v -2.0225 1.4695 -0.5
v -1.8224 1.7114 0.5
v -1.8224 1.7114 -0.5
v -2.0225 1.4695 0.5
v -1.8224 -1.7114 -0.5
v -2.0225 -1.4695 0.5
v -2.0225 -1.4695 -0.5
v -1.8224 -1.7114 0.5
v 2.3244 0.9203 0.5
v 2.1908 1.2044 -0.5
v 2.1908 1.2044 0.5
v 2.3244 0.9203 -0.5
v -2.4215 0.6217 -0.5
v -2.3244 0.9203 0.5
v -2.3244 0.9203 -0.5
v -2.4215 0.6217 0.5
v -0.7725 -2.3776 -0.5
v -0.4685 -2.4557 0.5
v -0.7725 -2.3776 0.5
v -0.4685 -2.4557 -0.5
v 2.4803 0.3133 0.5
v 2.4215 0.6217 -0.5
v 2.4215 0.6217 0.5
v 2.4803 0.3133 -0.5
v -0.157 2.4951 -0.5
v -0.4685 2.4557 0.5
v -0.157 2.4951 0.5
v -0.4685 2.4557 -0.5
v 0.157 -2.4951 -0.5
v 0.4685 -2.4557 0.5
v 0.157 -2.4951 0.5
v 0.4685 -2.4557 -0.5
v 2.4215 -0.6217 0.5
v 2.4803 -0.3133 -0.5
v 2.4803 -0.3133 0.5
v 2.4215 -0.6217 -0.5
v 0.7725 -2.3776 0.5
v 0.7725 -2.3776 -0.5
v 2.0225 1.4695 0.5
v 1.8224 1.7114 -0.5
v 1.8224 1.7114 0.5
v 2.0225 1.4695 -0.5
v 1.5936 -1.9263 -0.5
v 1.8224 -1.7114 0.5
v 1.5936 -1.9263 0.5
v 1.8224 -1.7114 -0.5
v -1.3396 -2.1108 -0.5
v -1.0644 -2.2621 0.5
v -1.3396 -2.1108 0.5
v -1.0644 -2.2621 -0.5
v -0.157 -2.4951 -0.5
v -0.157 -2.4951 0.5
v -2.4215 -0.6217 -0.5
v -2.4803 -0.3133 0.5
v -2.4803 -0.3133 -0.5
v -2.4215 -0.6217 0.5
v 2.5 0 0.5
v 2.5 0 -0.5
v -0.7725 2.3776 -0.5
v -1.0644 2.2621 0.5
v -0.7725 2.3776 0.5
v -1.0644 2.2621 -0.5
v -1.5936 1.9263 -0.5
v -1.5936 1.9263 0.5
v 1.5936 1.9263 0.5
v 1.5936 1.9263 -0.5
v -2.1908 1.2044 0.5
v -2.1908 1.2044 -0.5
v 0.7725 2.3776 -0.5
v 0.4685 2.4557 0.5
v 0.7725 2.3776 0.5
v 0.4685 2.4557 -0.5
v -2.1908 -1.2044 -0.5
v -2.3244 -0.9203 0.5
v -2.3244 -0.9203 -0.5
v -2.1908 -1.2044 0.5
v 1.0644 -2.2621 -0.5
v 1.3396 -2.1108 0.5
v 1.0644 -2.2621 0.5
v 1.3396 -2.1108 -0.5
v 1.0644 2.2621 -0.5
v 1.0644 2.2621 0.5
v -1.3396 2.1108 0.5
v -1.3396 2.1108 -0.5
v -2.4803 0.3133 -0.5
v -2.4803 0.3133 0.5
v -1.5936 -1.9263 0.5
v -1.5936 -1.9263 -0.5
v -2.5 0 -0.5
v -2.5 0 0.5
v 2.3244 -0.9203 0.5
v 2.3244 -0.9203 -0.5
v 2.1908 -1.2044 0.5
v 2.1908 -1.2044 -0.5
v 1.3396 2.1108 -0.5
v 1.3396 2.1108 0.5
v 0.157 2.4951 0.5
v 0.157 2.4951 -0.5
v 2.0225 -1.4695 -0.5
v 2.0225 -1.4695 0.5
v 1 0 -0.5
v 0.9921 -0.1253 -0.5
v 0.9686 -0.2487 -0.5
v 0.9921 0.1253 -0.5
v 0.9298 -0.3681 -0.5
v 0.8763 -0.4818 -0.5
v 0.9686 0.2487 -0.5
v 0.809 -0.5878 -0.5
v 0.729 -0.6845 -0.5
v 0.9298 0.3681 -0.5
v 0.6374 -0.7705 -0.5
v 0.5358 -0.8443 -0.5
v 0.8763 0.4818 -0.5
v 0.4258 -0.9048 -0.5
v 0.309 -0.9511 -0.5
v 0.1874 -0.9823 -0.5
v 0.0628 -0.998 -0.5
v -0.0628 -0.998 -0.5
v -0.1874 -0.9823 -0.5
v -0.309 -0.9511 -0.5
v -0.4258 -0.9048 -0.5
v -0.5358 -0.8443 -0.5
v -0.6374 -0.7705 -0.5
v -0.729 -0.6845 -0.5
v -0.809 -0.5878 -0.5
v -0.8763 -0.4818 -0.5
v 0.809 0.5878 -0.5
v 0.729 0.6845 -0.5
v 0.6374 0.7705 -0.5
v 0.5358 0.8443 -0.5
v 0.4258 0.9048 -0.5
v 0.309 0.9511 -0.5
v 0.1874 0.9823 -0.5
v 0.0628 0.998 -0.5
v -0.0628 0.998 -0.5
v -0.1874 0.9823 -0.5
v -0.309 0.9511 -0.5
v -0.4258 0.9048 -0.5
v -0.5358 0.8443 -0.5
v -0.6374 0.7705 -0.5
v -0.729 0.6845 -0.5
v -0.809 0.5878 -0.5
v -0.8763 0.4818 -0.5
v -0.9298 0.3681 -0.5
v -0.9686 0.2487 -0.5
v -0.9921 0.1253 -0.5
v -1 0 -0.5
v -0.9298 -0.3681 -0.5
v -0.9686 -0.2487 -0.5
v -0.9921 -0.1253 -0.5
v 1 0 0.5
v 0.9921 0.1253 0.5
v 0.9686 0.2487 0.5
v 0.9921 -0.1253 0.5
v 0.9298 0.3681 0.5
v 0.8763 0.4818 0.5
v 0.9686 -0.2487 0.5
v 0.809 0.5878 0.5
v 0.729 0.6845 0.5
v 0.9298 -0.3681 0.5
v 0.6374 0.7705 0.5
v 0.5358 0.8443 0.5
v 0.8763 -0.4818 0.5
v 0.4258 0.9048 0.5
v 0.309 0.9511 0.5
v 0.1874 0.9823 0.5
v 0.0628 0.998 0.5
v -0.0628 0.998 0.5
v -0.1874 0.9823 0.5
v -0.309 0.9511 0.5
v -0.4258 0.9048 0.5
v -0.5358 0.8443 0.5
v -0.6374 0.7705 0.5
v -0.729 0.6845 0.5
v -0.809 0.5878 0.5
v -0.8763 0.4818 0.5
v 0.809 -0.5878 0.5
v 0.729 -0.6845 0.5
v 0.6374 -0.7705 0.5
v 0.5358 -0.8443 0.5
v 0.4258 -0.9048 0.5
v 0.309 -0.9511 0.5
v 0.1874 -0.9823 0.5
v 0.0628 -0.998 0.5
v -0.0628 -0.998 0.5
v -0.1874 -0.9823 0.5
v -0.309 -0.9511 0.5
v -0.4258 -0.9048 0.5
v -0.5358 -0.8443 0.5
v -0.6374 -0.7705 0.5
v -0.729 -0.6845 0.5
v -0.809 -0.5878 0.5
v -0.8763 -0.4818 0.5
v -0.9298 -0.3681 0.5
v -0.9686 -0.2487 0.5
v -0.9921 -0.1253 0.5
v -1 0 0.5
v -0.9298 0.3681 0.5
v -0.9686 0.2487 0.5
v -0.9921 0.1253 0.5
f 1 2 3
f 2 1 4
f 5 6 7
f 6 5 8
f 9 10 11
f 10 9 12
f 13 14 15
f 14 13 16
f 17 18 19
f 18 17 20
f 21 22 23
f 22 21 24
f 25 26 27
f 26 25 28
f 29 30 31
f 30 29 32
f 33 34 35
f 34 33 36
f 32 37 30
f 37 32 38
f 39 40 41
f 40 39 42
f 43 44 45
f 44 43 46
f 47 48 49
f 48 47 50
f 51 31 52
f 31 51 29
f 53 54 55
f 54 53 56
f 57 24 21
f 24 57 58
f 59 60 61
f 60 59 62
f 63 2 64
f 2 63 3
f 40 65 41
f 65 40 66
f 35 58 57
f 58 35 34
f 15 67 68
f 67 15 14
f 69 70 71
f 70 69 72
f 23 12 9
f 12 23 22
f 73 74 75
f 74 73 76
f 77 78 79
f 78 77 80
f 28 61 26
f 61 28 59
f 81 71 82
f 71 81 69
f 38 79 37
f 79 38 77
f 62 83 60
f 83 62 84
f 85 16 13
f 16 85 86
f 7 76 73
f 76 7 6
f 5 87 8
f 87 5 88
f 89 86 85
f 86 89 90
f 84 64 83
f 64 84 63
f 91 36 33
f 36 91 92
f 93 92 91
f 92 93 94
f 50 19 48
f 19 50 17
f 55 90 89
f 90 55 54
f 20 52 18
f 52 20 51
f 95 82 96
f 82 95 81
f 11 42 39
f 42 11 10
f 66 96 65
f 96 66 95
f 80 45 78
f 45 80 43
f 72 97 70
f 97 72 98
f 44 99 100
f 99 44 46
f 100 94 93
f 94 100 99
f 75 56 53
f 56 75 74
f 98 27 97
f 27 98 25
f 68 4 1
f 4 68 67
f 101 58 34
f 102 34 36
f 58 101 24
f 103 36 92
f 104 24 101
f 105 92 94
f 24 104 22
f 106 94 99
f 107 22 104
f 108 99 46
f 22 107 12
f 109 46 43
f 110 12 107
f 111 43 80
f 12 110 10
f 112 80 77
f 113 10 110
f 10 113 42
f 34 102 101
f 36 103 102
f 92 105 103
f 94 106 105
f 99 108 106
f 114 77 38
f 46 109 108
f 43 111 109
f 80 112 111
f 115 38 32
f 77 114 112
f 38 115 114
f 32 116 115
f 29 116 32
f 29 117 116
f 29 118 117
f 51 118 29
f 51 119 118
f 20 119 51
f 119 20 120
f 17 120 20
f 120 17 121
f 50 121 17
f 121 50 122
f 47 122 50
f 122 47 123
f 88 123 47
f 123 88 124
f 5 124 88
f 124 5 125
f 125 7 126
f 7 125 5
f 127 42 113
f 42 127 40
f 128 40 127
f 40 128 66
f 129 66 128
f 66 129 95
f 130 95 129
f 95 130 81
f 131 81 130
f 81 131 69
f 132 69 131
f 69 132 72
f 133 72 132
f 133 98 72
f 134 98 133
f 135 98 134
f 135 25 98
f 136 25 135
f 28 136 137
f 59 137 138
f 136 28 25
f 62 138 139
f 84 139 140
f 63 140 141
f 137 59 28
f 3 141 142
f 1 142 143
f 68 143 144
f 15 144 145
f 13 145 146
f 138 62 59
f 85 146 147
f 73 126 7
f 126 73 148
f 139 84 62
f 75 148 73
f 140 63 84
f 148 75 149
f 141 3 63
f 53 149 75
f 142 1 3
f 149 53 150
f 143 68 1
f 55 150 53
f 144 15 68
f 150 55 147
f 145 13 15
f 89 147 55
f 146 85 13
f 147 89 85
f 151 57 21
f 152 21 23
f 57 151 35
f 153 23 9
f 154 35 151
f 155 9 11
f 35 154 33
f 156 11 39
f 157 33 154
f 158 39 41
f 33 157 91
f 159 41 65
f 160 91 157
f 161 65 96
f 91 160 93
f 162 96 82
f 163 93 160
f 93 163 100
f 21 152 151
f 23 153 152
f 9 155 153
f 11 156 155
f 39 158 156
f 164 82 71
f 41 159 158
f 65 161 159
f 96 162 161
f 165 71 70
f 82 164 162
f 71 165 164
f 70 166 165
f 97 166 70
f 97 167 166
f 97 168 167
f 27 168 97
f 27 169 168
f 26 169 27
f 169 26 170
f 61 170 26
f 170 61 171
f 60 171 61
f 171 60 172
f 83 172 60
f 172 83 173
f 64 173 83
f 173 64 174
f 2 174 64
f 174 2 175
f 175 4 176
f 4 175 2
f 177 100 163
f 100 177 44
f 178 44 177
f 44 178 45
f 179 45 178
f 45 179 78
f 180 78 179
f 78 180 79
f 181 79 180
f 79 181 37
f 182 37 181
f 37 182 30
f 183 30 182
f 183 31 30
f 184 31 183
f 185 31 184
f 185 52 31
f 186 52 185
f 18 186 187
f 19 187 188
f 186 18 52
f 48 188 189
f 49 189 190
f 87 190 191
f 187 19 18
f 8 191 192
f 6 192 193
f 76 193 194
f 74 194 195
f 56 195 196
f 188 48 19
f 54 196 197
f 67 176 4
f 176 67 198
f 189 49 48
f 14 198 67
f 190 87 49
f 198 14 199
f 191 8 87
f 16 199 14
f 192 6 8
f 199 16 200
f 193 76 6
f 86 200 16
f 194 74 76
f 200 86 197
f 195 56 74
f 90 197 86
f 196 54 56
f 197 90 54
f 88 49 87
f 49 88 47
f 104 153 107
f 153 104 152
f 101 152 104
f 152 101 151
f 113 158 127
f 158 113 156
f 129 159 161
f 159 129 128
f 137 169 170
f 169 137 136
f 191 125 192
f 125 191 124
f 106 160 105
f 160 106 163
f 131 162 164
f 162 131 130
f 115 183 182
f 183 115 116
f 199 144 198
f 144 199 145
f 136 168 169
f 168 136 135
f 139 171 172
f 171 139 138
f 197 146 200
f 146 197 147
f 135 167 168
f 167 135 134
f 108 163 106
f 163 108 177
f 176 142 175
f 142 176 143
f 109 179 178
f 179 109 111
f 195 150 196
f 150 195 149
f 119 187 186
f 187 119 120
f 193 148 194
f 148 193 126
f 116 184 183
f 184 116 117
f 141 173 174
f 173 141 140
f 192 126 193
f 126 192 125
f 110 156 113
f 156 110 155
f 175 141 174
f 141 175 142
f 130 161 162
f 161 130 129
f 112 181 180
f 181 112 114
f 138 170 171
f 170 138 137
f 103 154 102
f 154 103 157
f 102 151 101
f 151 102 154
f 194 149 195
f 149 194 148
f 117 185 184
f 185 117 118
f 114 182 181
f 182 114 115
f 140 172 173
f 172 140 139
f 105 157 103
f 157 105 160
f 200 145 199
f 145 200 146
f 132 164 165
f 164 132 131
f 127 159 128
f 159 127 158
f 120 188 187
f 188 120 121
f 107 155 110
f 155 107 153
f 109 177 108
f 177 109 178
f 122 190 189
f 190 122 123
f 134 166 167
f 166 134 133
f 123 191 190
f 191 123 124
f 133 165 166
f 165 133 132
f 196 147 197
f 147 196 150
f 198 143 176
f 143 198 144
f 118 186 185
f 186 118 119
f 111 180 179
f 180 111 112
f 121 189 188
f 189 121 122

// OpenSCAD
$fn=50;

height=1.0;
diameter=2;
width=1.5;

difference() {
     cylinder(height, d=diameter+2*width, center=true);
     cylinder(height, d=diameter, center=true);
};
